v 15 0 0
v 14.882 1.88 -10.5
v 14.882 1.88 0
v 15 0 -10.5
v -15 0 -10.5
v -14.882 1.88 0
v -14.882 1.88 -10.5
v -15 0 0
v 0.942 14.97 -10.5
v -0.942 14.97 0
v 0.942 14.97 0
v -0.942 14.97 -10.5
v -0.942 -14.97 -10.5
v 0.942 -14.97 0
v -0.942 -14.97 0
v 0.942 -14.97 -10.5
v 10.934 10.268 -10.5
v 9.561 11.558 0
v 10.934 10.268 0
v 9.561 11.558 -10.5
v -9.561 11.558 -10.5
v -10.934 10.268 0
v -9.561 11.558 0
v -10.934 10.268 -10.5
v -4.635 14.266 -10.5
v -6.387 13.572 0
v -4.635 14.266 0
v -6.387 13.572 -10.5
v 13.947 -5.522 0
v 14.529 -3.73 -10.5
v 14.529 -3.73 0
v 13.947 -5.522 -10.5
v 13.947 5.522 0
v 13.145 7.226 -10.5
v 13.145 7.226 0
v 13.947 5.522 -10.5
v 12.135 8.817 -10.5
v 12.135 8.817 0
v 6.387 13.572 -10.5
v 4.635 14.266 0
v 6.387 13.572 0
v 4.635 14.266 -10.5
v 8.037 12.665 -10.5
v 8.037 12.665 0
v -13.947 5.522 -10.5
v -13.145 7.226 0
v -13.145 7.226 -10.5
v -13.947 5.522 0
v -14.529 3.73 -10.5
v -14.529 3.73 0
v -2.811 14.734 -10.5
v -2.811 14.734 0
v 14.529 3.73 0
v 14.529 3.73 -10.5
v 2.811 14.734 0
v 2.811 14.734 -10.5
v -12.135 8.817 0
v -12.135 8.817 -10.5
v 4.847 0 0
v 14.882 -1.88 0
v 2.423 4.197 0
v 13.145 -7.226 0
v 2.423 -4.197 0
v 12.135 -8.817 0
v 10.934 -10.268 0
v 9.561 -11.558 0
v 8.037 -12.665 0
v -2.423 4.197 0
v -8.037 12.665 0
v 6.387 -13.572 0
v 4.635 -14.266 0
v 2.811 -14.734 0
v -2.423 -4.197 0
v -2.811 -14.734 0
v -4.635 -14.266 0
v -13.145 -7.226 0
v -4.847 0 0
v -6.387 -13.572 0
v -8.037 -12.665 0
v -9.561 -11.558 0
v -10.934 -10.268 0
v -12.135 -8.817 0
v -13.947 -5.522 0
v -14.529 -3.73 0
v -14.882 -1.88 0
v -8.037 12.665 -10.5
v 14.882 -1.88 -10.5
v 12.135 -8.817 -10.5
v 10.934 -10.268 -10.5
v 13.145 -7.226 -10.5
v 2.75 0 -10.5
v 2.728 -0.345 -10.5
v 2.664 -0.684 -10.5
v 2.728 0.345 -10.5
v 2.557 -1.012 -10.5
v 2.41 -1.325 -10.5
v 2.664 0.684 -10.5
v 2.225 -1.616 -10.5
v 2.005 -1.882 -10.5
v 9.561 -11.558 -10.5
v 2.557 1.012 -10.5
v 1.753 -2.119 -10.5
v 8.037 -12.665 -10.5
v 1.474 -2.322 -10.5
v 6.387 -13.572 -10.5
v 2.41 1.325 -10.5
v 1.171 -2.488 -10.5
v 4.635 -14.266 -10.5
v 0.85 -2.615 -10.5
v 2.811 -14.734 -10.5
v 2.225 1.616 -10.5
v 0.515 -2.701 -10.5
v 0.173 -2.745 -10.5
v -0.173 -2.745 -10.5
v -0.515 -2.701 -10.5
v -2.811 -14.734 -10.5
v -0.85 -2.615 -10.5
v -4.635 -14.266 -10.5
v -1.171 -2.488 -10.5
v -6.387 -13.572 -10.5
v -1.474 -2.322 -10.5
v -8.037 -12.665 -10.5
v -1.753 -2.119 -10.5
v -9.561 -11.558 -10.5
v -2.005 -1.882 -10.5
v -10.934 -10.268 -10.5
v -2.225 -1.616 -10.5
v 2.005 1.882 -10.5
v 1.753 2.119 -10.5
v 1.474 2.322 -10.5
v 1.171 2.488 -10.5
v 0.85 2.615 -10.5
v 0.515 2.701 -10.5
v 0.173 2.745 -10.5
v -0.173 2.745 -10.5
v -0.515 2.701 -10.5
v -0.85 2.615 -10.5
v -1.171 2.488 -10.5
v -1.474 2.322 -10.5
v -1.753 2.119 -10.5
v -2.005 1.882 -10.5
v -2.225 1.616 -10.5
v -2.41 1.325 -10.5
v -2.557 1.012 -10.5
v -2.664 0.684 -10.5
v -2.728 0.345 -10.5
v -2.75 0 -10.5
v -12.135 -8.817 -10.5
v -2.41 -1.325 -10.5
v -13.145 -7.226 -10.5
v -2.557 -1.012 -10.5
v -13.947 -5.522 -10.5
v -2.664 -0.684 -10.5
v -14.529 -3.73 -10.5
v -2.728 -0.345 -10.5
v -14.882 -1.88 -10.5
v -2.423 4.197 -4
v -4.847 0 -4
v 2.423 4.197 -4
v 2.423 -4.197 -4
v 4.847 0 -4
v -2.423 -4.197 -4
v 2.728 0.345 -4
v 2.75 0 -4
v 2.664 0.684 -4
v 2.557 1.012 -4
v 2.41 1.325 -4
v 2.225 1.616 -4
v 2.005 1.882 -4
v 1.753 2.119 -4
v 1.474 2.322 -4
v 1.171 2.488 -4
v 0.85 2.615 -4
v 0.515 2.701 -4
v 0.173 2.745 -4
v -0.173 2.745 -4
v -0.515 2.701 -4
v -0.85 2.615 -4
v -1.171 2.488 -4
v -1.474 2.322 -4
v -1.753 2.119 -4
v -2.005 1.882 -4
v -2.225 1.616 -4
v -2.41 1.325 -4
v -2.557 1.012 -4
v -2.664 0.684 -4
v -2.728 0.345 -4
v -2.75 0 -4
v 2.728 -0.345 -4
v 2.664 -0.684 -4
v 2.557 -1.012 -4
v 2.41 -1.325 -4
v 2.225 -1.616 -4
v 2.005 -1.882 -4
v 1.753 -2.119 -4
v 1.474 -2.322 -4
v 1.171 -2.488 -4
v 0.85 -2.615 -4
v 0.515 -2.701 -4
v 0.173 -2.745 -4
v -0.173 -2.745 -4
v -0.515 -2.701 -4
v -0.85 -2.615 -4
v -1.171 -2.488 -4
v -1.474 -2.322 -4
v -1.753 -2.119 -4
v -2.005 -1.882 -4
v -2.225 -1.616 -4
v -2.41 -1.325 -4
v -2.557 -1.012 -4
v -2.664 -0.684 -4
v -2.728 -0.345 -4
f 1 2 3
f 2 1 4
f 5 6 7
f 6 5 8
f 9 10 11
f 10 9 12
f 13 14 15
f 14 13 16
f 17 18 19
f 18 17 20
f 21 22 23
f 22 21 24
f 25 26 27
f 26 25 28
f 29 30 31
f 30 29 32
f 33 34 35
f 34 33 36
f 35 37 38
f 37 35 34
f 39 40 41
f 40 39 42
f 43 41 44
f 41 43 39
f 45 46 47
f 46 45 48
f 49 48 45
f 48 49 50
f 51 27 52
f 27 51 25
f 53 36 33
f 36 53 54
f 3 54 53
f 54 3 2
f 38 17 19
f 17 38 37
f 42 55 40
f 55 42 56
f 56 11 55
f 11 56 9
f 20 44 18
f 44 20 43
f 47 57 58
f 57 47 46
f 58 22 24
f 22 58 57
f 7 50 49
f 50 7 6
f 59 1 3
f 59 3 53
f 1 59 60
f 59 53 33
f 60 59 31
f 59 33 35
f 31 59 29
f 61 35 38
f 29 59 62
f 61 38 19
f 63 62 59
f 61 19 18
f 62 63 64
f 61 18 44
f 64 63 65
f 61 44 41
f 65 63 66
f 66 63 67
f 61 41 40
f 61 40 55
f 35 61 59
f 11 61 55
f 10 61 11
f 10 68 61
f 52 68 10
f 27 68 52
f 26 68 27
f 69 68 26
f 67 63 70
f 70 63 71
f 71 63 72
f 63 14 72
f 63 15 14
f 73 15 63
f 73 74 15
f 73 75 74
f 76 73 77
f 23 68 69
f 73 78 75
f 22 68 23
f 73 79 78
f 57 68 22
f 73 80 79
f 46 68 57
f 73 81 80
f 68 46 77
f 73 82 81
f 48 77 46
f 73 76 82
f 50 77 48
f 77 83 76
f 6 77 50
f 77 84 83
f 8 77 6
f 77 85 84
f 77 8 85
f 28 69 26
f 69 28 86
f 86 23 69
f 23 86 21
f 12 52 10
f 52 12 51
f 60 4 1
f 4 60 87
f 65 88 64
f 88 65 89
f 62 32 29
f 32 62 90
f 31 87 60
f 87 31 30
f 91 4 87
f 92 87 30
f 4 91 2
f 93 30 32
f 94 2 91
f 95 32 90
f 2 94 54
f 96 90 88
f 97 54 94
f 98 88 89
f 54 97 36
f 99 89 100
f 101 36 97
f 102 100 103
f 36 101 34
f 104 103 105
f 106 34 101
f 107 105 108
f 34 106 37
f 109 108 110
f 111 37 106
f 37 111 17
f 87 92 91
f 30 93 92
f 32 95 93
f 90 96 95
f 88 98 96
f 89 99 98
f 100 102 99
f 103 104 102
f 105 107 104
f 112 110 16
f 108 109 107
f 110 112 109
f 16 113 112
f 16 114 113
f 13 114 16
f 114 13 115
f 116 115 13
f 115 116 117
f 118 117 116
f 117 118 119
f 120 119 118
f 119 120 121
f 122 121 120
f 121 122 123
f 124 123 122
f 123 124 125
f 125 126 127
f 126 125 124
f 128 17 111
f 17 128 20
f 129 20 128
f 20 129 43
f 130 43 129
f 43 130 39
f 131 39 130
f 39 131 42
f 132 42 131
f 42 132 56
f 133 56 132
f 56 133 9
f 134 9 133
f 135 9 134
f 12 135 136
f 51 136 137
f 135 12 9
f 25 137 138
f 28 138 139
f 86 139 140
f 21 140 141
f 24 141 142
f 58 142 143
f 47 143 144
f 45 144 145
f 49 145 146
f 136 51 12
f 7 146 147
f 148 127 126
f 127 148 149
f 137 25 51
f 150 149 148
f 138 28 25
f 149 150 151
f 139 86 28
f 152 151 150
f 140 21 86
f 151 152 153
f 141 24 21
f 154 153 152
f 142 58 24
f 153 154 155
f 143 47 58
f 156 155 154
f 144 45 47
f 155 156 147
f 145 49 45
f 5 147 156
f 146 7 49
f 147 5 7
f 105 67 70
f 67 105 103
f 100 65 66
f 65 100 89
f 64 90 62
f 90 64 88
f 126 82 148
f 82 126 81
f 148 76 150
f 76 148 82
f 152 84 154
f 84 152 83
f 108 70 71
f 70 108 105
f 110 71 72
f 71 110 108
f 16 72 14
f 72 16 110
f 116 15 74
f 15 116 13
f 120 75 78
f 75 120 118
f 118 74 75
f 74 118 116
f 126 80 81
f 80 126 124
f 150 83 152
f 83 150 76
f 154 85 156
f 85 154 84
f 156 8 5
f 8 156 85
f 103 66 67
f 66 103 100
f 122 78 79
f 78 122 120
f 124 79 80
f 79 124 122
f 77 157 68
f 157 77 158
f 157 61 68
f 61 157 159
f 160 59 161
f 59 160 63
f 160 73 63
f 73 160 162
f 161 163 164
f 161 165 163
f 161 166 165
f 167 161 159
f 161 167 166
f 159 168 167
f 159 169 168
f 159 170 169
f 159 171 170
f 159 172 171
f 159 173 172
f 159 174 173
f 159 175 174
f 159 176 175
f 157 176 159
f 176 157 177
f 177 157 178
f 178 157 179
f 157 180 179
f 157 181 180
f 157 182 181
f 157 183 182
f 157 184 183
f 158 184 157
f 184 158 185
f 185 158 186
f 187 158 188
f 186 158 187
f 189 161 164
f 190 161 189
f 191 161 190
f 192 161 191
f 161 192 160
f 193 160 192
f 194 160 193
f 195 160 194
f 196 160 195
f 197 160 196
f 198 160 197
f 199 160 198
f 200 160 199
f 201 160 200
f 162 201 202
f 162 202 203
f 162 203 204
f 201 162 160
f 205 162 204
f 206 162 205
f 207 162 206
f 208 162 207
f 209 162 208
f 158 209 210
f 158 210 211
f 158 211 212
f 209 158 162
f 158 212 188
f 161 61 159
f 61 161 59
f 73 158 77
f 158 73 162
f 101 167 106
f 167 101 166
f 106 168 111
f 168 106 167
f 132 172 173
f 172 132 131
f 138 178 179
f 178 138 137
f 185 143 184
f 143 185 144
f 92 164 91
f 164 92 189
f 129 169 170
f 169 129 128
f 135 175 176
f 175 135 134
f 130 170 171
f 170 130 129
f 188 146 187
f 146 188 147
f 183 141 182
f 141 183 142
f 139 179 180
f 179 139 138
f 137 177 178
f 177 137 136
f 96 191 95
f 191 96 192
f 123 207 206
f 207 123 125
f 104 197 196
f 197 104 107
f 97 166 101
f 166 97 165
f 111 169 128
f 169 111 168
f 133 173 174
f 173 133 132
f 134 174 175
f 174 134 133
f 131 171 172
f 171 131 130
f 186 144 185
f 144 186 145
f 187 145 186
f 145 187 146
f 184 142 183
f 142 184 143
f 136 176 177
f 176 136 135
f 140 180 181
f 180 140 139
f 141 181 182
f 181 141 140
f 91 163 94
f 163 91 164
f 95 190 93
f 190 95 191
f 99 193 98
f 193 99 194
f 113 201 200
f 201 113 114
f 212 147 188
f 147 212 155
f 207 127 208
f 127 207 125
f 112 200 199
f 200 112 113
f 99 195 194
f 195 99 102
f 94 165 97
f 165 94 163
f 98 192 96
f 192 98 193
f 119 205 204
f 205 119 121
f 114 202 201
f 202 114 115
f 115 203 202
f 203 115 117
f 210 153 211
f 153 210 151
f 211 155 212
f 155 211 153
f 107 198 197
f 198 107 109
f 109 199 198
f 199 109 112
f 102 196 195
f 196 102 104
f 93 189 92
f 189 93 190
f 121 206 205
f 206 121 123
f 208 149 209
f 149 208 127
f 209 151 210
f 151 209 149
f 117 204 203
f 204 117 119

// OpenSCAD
$fn = 50;


difference() {
	union() {
		translate(v = [0, 0, -10.5000000000]) {
			cylinder(h = 10.5000000000, r = 15.0000000000);
		}
		translate(v = [0, 0, -9.0000000000]) {
			cylinder(h = 9, r = 2.8750000000);
		}
	}
	union() {
		translate(v = [0, 0, 0]) {
			rotate(a = [0, 0, 0]) {
				difference() {
					union() {
						translate(v = [0, 0, -4]) {
							#linear_extrude(height = 4) {
								polygon(points = [[4.8468000000, 0.0000000000], [2.4234000000, 4.1974519271], [-2.4234000000, 4.1974519271], [-4.8468000000, 0.0000000000], [-2.4234000000, -4.1974519271], [2.4234000000, -4.1974519271]]);
							}
						}
					}
					union();
				}
			}
		}
		#translate(v = [0, 0, -100.0000000000]) {
			cylinder(h = 200, r = 2.7500000000);
		}
	}
}
